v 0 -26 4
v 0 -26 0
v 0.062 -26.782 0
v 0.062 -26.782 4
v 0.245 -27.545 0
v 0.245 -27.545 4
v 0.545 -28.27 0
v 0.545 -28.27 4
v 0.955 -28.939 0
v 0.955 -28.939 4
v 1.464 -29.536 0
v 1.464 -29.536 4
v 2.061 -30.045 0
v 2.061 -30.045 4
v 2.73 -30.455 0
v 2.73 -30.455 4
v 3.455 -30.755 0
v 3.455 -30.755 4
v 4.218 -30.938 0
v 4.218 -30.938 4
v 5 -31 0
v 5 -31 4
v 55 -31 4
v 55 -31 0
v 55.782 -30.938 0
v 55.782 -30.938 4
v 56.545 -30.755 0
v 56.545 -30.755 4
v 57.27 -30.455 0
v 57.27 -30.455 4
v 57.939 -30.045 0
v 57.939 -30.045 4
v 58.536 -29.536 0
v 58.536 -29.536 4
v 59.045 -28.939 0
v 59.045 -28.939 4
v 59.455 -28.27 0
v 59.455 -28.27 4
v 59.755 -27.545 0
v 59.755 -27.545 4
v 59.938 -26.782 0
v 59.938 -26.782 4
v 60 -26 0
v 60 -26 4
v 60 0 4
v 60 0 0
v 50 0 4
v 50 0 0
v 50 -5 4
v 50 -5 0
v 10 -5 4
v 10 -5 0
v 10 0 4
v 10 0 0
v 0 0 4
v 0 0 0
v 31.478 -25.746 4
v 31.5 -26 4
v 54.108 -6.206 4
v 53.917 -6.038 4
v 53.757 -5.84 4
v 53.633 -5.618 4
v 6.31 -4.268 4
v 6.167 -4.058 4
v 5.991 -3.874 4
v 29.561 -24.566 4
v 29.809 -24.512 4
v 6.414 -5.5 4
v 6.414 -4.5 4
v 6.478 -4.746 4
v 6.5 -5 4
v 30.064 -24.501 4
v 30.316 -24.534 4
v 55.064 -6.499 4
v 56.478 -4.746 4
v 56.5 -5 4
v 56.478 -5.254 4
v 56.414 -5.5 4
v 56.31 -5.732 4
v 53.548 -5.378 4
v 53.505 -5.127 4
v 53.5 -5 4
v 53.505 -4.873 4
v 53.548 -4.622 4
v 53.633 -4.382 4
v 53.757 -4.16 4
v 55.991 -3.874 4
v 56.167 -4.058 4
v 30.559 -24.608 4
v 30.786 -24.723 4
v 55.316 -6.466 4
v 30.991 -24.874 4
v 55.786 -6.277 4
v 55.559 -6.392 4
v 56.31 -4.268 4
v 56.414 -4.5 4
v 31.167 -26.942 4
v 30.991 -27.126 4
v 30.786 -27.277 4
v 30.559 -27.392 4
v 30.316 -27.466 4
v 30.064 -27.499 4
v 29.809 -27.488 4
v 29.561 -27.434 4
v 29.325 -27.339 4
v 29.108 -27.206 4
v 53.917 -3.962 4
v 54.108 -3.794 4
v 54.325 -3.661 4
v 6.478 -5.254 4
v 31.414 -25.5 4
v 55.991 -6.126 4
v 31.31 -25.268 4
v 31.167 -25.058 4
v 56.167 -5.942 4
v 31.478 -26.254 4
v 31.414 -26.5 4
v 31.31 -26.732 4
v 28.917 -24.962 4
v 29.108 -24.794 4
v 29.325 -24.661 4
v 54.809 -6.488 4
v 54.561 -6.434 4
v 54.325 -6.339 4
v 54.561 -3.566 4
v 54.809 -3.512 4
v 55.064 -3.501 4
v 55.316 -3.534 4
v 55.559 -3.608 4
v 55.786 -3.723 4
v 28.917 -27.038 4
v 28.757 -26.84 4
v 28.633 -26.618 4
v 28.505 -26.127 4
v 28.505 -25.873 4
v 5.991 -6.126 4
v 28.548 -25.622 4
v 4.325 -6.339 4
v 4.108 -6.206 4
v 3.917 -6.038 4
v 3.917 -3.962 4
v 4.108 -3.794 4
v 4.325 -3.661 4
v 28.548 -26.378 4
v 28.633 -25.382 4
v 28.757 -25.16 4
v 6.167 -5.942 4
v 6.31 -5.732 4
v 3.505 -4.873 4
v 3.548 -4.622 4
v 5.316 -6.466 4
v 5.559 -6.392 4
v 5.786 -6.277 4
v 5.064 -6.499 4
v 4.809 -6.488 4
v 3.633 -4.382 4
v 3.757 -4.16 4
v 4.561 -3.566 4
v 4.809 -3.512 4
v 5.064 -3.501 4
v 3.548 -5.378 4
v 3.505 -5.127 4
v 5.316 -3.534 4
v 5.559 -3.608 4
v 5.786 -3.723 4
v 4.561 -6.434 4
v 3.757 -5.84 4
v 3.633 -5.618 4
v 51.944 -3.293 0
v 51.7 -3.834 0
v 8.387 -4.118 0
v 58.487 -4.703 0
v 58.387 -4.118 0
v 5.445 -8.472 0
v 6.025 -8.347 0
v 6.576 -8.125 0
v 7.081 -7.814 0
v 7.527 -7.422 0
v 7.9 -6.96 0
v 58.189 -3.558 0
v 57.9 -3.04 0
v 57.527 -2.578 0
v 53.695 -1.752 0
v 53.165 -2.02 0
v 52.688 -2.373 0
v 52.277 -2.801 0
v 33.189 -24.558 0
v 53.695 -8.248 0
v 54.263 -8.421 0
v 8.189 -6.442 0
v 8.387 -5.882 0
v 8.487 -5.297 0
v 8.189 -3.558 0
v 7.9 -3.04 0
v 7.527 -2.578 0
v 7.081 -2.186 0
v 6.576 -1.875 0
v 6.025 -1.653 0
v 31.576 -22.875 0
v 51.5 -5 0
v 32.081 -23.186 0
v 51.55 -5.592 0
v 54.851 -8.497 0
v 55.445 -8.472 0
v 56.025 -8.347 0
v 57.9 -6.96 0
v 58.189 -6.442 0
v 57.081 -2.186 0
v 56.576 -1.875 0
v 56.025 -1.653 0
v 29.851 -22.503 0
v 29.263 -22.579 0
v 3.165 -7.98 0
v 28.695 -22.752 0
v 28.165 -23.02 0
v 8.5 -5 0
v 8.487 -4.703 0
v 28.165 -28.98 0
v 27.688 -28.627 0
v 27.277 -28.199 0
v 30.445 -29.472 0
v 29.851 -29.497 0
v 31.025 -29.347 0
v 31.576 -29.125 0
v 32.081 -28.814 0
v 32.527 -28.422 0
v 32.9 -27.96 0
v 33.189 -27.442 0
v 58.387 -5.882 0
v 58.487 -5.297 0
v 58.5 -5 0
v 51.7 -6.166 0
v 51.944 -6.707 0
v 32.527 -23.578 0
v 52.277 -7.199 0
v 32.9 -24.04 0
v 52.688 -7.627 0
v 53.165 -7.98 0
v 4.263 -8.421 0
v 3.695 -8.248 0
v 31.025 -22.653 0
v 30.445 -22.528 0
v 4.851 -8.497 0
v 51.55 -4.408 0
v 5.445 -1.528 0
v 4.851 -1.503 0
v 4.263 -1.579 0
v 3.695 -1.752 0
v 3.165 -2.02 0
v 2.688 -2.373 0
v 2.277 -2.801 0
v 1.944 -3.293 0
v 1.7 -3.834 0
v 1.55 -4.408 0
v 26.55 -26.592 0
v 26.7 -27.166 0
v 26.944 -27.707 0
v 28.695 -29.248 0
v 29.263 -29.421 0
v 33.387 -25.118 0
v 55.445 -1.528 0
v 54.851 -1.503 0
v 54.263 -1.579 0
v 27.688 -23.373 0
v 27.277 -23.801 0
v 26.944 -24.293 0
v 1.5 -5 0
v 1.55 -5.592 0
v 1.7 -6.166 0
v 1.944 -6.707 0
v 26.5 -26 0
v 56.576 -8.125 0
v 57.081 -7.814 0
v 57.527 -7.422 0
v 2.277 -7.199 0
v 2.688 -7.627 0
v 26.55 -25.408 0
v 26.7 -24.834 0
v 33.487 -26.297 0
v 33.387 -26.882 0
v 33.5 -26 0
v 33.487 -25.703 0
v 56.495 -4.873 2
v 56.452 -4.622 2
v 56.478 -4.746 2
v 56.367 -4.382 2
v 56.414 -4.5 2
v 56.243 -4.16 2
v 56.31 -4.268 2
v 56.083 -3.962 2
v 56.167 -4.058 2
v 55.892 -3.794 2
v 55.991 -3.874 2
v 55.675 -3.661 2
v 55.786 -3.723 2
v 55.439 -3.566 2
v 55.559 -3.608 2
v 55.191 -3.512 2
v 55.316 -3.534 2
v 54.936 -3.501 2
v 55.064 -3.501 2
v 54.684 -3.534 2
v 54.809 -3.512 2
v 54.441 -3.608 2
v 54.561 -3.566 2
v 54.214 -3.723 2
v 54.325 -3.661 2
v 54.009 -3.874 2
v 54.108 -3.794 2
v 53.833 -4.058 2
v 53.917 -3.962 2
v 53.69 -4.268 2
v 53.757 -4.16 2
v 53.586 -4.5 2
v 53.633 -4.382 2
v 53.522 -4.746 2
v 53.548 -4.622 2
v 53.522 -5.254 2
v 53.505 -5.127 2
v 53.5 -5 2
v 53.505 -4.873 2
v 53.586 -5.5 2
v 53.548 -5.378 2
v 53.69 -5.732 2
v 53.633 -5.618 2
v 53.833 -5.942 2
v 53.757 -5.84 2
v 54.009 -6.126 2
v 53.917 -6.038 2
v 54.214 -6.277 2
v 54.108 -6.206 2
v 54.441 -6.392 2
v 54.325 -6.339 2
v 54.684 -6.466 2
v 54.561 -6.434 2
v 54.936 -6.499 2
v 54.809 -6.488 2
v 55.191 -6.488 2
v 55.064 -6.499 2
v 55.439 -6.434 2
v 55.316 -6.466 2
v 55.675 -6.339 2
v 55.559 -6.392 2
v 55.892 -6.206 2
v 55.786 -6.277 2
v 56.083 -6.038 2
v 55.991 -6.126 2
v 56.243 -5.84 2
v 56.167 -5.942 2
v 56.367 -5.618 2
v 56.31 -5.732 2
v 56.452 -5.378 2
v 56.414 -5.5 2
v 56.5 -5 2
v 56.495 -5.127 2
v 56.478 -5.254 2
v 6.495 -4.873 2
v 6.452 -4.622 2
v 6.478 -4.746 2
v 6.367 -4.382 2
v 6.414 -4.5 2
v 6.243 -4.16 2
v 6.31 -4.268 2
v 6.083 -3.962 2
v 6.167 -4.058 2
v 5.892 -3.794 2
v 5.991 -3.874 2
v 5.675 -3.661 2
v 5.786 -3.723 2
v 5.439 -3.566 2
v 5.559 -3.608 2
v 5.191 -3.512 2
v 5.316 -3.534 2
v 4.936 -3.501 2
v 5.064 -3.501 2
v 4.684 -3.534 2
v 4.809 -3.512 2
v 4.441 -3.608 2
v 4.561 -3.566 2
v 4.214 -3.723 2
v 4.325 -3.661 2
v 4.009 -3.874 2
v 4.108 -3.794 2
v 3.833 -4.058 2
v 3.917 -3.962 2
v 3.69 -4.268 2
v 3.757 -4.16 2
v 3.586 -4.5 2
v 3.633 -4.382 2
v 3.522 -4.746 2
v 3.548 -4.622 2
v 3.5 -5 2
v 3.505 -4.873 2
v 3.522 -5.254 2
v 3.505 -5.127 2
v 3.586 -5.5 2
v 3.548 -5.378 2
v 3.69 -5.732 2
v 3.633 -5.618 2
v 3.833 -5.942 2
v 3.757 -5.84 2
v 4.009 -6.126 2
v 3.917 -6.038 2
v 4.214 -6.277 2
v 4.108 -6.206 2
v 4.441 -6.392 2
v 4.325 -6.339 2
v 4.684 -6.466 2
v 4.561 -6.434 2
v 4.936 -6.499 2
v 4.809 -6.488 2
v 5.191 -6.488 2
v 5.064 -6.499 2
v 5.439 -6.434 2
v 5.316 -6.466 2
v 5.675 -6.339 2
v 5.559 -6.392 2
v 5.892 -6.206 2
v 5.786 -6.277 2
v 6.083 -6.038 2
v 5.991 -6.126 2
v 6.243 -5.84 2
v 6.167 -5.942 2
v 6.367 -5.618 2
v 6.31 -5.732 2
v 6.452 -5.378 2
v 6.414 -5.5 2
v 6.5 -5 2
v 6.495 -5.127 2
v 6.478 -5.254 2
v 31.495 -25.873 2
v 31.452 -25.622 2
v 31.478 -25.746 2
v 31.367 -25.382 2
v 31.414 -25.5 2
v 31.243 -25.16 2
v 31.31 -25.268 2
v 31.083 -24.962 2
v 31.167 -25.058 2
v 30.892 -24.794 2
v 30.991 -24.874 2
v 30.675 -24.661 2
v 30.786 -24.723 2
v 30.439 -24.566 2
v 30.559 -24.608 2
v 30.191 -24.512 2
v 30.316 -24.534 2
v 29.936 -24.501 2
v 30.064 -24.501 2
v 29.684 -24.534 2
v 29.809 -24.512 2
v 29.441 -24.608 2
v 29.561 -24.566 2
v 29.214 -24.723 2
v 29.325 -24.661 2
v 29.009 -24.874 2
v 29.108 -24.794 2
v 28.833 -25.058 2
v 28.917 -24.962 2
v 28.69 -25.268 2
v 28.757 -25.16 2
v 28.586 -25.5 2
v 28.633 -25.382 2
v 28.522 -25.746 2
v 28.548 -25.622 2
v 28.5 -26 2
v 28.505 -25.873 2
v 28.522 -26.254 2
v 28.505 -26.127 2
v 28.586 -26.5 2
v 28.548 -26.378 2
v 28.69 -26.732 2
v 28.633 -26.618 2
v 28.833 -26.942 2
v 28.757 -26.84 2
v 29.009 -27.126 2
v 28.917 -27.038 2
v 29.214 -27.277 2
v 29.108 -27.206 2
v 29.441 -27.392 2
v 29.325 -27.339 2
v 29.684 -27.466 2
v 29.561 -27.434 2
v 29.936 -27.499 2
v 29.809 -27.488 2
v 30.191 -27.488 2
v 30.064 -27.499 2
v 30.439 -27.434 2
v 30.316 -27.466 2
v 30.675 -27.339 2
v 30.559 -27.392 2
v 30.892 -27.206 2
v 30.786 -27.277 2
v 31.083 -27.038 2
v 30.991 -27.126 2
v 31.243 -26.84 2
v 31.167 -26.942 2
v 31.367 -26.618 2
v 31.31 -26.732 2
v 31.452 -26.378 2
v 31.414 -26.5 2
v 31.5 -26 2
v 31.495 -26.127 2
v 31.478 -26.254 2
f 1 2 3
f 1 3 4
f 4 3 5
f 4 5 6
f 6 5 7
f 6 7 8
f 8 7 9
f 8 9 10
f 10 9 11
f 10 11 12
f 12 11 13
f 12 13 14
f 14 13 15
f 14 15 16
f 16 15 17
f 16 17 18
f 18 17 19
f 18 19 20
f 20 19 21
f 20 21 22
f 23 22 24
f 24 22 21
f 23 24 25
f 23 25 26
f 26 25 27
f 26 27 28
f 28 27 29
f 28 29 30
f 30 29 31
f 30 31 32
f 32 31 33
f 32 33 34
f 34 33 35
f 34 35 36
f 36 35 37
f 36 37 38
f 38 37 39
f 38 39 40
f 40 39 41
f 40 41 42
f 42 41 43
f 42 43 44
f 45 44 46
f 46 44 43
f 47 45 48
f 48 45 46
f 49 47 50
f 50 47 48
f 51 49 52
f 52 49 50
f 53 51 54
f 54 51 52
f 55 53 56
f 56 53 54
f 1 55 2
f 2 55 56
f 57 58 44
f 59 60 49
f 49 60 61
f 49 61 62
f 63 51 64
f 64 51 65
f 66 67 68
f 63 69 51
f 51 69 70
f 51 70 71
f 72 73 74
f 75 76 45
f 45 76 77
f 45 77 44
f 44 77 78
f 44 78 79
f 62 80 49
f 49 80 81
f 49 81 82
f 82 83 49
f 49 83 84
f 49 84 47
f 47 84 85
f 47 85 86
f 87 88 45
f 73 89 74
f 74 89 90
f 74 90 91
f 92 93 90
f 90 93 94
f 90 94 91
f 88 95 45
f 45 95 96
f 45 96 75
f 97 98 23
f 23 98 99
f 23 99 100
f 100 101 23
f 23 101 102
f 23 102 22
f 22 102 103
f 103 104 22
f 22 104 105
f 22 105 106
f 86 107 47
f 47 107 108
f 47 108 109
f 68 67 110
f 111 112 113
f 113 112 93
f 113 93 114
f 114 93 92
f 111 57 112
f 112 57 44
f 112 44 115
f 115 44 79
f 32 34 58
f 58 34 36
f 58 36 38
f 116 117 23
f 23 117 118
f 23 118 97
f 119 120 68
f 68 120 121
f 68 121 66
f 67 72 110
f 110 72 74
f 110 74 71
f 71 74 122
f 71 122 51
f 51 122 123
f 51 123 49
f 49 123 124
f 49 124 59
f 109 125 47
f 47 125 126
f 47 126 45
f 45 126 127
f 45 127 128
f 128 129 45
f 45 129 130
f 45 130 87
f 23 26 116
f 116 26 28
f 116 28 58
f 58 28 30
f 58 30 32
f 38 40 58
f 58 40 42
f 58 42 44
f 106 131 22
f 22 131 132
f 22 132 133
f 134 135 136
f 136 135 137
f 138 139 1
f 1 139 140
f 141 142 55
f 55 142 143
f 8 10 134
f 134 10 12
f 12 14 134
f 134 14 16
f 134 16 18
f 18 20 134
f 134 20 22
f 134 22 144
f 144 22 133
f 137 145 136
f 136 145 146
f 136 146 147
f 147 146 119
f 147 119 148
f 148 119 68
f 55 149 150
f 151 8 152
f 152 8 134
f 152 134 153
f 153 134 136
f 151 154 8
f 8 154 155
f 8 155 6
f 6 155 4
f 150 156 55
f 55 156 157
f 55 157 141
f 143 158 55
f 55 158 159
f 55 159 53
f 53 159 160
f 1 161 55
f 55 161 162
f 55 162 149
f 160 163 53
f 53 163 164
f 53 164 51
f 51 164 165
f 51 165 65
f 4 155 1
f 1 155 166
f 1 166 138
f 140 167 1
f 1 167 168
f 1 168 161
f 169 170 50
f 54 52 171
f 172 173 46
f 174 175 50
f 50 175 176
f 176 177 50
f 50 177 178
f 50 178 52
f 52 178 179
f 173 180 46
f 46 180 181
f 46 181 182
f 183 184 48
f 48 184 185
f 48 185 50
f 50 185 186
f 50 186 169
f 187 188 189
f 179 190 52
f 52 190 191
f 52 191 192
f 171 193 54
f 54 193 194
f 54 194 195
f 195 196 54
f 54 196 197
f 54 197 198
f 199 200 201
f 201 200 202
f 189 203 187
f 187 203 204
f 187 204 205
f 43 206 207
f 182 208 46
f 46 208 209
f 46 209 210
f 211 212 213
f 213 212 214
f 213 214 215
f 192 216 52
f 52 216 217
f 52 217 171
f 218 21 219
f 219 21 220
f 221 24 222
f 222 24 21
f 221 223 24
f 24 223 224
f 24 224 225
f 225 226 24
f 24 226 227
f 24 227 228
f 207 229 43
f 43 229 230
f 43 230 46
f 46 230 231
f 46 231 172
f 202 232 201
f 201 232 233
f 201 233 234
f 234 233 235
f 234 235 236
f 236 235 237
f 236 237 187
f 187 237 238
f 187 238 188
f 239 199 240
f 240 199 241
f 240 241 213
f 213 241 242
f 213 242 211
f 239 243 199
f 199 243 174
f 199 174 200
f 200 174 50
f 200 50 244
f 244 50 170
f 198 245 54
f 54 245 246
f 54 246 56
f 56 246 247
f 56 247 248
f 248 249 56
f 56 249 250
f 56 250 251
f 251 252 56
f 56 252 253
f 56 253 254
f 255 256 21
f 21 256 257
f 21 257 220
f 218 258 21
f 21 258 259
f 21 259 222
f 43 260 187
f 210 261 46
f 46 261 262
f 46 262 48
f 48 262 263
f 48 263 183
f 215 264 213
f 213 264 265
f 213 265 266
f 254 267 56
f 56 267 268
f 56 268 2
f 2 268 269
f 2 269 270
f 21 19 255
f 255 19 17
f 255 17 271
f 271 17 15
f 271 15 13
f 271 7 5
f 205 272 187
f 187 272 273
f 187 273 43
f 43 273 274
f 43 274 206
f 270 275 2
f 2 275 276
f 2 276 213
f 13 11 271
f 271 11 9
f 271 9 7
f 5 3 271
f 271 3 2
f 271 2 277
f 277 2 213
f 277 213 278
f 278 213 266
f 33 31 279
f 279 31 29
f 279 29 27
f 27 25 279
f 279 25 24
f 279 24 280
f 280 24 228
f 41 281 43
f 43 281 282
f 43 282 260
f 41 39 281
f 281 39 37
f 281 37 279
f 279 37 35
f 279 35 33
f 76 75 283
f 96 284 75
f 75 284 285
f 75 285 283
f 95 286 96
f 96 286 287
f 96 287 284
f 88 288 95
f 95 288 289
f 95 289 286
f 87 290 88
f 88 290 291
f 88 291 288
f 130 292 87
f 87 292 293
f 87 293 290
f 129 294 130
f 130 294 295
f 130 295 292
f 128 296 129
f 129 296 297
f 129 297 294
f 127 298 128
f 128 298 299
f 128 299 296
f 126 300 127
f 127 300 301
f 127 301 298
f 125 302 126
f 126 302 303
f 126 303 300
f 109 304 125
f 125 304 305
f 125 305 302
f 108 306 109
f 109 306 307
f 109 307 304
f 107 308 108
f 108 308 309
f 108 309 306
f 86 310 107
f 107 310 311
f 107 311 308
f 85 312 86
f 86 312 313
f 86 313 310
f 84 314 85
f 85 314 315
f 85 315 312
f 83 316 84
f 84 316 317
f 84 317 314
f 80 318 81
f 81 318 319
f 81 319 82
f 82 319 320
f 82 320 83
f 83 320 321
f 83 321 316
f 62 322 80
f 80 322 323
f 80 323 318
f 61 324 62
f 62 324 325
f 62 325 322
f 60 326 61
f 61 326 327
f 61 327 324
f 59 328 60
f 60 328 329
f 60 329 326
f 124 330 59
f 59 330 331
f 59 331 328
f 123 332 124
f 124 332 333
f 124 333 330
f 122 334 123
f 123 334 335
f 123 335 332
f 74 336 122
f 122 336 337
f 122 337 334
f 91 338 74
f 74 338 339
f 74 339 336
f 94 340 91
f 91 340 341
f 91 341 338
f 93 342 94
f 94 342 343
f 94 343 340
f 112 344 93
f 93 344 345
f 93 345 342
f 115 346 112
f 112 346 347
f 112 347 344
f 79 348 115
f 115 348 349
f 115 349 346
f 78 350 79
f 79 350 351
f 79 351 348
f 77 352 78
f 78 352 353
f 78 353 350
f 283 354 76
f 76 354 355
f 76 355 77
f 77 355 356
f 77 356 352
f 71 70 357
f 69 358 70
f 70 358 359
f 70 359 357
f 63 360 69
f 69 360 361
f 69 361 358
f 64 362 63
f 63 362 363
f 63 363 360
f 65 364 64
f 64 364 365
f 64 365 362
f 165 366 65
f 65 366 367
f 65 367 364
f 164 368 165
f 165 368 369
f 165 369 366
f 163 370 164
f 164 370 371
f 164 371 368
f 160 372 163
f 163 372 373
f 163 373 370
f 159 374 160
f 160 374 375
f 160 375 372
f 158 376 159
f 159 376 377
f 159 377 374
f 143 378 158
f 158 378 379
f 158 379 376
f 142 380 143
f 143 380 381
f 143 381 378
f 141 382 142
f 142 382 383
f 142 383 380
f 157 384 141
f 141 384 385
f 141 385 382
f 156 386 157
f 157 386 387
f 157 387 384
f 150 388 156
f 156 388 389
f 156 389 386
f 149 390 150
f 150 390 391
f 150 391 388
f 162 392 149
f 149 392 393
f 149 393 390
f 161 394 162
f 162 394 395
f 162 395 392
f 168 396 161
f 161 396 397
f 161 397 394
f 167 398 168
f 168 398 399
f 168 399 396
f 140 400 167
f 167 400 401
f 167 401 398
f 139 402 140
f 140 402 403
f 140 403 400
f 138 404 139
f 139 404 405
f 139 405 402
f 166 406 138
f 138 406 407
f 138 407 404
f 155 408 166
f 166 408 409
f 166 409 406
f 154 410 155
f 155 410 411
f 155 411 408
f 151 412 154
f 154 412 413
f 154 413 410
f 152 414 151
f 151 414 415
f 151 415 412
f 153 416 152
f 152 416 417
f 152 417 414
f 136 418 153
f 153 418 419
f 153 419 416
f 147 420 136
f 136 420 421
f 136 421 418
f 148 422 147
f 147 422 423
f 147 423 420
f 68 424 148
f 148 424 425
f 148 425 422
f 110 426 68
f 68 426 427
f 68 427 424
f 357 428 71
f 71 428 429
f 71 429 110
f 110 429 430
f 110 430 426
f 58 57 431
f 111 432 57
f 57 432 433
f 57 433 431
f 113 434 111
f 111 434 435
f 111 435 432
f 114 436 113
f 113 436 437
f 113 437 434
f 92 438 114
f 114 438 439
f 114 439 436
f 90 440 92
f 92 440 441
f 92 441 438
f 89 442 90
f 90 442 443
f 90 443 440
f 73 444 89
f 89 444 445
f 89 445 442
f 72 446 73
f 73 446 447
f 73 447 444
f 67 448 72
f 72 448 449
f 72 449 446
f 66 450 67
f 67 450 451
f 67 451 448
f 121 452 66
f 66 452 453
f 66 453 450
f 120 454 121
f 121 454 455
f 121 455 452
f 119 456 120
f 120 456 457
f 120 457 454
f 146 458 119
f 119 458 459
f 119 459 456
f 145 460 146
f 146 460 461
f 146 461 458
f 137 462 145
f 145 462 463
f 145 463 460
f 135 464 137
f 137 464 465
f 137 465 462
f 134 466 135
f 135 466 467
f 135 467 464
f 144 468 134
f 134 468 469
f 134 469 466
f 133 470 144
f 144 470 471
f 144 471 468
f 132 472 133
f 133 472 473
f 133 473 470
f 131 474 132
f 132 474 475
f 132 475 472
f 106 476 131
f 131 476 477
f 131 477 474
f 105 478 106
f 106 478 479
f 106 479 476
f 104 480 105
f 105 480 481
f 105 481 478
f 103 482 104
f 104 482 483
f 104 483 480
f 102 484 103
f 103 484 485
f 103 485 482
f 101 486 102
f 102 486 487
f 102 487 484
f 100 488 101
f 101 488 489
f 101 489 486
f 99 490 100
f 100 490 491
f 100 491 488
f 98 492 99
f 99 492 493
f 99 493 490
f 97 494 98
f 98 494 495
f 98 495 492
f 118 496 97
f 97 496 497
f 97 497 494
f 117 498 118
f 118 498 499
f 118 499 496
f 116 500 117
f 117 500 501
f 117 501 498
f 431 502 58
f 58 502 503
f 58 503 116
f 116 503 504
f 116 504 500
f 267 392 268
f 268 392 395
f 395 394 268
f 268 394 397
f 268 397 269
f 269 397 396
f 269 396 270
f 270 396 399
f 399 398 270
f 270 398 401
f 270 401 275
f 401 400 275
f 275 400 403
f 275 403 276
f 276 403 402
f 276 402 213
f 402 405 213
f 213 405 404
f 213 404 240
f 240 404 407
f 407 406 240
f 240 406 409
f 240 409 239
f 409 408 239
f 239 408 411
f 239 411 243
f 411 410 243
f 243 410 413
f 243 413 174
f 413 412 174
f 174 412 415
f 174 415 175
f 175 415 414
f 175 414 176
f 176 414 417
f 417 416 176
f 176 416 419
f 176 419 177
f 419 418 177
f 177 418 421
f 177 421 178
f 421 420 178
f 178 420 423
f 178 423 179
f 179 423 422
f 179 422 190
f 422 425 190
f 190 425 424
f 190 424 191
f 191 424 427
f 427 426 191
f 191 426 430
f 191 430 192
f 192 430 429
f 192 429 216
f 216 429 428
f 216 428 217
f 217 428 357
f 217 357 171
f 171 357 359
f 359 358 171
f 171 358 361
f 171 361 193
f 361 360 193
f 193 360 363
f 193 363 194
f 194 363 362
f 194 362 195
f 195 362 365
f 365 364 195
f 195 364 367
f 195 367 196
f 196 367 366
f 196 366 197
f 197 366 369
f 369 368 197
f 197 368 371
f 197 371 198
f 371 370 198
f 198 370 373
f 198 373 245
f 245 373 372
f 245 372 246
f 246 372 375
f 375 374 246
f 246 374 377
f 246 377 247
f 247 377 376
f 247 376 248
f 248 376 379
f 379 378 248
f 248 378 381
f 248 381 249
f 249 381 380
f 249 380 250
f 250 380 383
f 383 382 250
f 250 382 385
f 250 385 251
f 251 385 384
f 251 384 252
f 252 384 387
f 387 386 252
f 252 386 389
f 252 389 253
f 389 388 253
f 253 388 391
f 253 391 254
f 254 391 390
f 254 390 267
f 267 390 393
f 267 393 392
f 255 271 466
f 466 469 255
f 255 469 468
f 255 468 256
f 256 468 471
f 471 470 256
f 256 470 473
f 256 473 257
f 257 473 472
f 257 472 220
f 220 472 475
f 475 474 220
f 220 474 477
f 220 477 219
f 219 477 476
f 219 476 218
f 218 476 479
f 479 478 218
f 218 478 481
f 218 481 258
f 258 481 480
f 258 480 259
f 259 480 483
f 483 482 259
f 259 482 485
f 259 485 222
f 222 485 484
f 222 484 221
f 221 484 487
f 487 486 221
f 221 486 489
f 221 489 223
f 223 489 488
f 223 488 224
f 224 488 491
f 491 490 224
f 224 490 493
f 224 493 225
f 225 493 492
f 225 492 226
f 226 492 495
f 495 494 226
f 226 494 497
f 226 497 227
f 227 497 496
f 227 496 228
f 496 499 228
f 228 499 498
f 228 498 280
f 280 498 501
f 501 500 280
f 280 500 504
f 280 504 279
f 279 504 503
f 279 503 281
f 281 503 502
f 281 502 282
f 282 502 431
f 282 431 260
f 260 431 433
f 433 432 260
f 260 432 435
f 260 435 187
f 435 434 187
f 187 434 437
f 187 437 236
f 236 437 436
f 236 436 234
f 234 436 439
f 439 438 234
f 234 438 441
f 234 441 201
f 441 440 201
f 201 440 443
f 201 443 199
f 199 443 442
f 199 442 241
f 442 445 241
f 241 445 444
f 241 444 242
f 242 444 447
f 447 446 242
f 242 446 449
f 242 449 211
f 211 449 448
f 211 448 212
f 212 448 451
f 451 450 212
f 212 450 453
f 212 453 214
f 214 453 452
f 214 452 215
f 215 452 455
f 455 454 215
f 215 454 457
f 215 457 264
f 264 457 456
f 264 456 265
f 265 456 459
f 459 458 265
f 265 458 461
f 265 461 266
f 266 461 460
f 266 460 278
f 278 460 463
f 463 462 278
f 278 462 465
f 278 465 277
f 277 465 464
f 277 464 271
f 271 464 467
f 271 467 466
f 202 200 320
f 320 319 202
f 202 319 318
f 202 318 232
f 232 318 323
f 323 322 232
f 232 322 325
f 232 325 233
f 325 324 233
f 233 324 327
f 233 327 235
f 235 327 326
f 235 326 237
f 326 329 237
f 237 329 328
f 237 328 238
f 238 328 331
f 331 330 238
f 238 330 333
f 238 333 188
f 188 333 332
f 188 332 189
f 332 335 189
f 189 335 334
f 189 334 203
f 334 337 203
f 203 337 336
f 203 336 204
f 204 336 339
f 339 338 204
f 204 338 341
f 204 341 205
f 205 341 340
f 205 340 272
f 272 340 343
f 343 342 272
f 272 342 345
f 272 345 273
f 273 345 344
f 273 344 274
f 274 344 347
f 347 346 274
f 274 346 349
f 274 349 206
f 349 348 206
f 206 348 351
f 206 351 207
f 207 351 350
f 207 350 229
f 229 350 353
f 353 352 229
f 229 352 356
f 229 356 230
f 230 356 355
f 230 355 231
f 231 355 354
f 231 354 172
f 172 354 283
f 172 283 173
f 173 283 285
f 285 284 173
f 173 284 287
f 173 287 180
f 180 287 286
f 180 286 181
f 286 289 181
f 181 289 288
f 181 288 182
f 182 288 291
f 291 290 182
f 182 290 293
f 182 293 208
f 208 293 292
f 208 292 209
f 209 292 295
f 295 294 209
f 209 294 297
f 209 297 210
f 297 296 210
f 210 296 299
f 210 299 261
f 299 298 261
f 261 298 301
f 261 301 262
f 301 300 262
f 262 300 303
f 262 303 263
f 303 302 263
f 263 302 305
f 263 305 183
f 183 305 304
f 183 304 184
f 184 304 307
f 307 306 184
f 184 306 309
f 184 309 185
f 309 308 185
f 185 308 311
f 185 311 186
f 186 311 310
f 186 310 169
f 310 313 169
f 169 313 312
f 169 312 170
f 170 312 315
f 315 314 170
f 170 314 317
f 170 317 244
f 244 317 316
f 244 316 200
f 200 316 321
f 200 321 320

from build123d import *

# Parameters (mm, degrees)
BOSS_EXTRU_1_DEPTH      = 4
ESQUISSE2_R             = 1.5
ENL_V_MAT_EXTRU_1_DEPTH = 4
CHANFREIN1_SIZE         = 2


with BuildPart() as part:
    # Esquisse1 → Boss.-Extru.1 (new body)
    with BuildSketch(Plane.XY):
        with BuildLine():
            Line((10, 0), (0, 0))
            Line((0, 0), (0, -26))
            ThreePointArc((0, -26), (1.464466094, -29.535533906), (5, -31))
            Line((5, -31), (55, -31))
            ThreePointArc((55, -31), (58.535533906, -29.535533906), (60, -26))
            Line((60, -26), (60, 0))
            Line((60, 0), (50, 0))
            Line((50, 0), (50, -5))
            Line((50, -5), (10, -5))
            Line((10, -5), (10, 0))
        make_face()
    extrude(amount=BOSS_EXTRU_1_DEPTH)

    # Esquisse2 → Enlèv. mat.-Extru.1 (cut)
    with BuildSketch(Plane.XY.offset(4)):
        with Locations((30, -26)):
            Circle(ESQUISSE2_R)
        with Locations((5, -5)):
            Circle(ESQUISSE2_R)
        with Locations((55, -5)):
            Circle(ESQUISSE2_R)
    extrude(amount=-ENL_V_MAT_EXTRU_1_DEPTH, mode=Mode.SUBTRACT)

    # Chanfrein1
    chanfrein1_edges = [part.edges().sort_by_distance(p)[0] for p in [
        (28.5, -26, 0),
        (3.5, -5, 0),
        (53.5, -5, 0),
    ]]
    chamfer(chanfrein1_edges, length=CHANFREIN1_SIZE)


solid = part.part
